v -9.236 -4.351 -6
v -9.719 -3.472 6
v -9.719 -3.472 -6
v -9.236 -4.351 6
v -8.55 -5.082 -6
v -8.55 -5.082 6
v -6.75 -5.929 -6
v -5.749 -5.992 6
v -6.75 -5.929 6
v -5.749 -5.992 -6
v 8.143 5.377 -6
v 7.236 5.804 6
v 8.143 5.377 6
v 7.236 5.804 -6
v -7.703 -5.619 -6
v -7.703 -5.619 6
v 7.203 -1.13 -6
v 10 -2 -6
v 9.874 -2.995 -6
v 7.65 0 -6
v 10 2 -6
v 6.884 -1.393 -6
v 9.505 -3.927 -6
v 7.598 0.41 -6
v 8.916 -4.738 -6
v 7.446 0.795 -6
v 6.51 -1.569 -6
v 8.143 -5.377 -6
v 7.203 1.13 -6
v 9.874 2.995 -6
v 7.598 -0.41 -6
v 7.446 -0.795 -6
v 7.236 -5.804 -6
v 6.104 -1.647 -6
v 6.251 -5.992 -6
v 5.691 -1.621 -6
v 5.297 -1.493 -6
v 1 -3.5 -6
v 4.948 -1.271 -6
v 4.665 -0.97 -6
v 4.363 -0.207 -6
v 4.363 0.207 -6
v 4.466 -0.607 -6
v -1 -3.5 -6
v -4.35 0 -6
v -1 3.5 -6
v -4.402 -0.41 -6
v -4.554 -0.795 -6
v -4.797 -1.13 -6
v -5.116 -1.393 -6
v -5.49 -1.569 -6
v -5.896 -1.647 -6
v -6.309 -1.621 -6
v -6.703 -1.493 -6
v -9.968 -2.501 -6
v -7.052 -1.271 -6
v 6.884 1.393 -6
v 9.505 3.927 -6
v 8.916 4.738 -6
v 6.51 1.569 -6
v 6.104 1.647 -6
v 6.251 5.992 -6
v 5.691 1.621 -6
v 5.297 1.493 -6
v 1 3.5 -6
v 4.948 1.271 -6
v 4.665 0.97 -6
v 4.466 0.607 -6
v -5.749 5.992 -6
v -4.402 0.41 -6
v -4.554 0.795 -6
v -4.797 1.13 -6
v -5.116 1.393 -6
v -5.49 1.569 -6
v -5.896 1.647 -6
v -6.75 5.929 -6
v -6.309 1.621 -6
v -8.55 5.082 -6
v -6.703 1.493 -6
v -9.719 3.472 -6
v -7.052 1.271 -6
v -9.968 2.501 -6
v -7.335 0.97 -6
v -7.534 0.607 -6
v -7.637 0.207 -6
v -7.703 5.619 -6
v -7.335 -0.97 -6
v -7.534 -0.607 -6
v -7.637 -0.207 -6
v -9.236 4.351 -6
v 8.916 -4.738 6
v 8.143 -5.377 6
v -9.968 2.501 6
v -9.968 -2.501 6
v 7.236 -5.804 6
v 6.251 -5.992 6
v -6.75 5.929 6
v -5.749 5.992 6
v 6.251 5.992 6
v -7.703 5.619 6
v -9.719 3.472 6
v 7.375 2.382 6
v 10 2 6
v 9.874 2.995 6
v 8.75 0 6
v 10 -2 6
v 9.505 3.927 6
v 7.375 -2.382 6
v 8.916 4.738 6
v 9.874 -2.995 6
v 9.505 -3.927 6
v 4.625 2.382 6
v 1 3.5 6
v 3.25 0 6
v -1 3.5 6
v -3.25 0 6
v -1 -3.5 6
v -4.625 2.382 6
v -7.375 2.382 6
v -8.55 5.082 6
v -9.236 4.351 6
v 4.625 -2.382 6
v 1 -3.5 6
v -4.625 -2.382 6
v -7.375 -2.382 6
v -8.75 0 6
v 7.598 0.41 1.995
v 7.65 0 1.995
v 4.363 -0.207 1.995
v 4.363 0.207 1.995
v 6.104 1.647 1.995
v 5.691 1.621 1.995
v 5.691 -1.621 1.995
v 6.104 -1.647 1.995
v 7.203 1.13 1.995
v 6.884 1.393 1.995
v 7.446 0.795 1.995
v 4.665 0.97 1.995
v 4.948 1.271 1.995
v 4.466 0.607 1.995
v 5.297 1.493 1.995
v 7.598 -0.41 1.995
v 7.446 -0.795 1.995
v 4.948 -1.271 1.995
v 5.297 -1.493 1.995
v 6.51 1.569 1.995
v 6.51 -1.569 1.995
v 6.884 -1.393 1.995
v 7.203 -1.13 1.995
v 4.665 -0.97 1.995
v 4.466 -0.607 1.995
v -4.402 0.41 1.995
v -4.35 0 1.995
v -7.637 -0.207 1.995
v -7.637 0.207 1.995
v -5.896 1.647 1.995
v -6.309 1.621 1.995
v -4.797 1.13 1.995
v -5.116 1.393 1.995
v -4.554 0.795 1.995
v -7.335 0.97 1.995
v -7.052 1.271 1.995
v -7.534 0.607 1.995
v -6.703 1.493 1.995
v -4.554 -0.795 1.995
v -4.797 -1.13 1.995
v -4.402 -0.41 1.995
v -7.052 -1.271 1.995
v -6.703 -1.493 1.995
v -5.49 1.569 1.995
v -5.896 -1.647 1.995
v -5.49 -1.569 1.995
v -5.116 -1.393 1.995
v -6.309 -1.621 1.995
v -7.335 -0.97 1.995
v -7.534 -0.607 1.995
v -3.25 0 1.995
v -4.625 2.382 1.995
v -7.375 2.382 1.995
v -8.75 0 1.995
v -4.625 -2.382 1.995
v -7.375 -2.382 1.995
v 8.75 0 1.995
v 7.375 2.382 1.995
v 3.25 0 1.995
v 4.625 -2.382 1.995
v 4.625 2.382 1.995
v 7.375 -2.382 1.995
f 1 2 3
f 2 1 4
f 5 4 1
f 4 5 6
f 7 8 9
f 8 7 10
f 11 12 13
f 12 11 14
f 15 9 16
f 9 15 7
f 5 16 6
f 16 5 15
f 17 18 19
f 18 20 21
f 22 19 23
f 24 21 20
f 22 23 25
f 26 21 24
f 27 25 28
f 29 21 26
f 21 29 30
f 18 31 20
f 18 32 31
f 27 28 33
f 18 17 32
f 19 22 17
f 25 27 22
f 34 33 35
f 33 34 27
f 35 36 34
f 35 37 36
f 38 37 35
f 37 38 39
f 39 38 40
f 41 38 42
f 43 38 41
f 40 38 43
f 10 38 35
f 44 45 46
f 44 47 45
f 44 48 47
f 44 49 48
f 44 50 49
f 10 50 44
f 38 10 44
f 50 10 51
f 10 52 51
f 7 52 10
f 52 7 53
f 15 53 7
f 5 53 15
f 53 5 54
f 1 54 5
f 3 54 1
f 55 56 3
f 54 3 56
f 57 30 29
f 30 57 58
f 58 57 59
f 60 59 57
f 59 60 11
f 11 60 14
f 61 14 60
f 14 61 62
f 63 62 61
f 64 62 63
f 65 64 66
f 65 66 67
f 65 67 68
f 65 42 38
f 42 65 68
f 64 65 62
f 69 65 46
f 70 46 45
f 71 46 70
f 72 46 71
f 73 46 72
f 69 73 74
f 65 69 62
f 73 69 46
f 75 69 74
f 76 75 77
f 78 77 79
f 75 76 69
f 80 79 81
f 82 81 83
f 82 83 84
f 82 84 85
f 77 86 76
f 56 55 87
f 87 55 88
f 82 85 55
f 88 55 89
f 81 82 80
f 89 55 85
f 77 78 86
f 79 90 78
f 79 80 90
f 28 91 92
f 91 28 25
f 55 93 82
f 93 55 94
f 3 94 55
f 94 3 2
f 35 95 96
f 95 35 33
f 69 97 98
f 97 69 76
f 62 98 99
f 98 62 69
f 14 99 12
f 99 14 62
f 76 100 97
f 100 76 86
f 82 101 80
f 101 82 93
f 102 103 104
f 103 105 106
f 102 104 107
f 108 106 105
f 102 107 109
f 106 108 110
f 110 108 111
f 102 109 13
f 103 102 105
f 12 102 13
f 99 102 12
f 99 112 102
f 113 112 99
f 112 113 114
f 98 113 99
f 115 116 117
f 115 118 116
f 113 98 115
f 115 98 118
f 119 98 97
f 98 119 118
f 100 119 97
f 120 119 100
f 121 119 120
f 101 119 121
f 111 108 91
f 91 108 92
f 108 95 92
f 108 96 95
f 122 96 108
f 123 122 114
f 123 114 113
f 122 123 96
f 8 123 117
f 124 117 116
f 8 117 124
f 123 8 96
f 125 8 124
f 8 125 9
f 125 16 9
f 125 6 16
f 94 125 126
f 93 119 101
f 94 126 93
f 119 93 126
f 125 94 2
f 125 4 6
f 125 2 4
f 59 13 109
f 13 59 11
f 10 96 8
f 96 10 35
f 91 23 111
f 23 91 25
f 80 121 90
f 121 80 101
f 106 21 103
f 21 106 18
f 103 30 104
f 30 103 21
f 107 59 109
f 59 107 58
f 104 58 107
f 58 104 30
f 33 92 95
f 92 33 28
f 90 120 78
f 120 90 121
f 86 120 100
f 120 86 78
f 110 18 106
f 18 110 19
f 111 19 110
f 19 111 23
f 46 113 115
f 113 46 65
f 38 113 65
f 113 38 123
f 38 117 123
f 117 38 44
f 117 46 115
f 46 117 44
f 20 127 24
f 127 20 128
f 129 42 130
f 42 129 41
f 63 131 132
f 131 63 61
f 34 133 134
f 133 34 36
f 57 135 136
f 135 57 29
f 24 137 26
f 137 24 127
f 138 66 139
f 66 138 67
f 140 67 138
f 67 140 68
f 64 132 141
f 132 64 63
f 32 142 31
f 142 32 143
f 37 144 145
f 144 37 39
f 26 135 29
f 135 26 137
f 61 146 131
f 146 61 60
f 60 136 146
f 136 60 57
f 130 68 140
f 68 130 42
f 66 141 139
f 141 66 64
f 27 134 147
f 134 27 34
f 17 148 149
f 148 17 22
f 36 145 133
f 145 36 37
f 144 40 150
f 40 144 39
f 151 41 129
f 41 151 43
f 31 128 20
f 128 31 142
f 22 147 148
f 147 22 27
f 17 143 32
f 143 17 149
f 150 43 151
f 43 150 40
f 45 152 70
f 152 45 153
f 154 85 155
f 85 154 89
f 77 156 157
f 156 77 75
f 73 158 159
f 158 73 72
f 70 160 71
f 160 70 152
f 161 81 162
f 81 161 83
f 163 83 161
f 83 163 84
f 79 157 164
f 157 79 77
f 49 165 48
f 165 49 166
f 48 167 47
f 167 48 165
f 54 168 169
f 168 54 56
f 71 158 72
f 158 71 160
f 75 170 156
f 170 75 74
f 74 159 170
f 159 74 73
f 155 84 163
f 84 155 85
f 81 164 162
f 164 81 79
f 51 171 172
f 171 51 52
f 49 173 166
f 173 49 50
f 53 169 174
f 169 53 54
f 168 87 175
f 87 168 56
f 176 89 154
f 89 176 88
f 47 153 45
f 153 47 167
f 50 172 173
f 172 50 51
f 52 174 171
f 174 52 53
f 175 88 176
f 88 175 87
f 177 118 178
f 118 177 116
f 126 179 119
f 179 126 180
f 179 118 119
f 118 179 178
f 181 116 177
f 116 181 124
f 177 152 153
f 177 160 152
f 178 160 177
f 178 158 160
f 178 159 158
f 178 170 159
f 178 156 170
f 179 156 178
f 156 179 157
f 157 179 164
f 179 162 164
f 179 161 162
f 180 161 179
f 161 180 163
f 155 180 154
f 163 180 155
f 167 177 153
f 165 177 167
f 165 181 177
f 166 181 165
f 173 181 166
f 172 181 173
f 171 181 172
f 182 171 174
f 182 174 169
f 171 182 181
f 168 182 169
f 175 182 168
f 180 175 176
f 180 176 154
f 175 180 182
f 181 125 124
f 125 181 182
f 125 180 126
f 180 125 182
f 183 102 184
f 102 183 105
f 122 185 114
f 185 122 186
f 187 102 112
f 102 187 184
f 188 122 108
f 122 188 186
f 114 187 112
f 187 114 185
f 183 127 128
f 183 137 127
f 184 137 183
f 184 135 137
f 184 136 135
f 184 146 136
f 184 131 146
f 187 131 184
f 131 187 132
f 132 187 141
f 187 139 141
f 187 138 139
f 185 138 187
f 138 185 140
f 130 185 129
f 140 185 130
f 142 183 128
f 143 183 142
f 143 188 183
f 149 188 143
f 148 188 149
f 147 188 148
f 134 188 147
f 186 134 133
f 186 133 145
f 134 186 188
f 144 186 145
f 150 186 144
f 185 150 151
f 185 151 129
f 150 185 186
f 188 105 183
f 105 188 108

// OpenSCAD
// file: roundedRect.scad
module roundedCube(size, radius, center=false) {
	x = size[0];
	y = size[1];
	z = size[2];

	xtrans=(center==true)?-x/2:0;
	ytrans=(center==true)?-y/2:0;
	ztrans=(center==true)?-z/2:0;


	translate([xtrans, ytrans, ztrans])
	hull() {
		translate([radius, radius, radius])
			sphere(r=radius, center=center);

		translate([radius, radius, z-radius])
			sphere(r=radius, center=center);


		translate([x - radius, radius, radius])
			sphere(r=radius, center=center);
		translate([x - radius, radius, z-radius])
			sphere(r=radius, center=center);

		translate([x - radius, y - radius, radius])
			sphere(r=radius, center=center);
		translate([x - radius, y - radius, z-radius])
			sphere(r=radius, center=center);

		translate([radius, y - radius, radius])
			sphere(r=radius, center=center);
		translate([radius, y - radius, z-radius])
			sphere(r=radius, center=center);
	}
}

module roundedRect(size, radius, center=false) {
	x = size[0];
	y = size[1];
	z = size[2];

	xtrans=(center==true)?-x/2:0;
	ytrans=(center==true)?-y/2:0;
	ztrans=(center==true)?-z/2:0;


	translate([xtrans, ytrans, ztrans])
	linear_extrude(height=z)

	hull() {
		translate([radius, radius, 0])
			circle(r=radius, center=center);

		translate([x - radius, radius, 0])
			circle(r=radius, center=center);

		translate([x - radius, y - radius, 0])
			circle(r=radius, center=center);

		translate([radius, y - radius, 0])
			circle(r=radius, center=center);
	}
}

//$fn=50;
//roundedCube([10,10,10], 1, center=false);

//translate([-10, -10, 0]) roundedRect([10,10,10], 1, center=false);
// main file
use <roundedRect.scad>
tensionboltspread=12;
slotwidth=7;
slotheight=2;
$fn=25;

module nuttrap(d,h) { 
	#cylinder(d=d, h=h, center=true, $fn=6);
}


difference() {
   	roundedRect([20,12,12], 4, center=true);
	#rotate([90,0,90]) cube([slotwidth,12.5,slotheight], center=true);
	translate([tensionboltspread/2,0,0]) cylinder(d=3.3, h=100, center=true);
	translate([-tensionboltspread/2,0,0]) cylinder(d=3.3, h=100, center=true);

translate([-tensionboltspread/2,0,12/2-2]) nuttrap(d=5.5, h=4.01);

translate([tensionboltspread/2,0,12/2-2]) nuttrap(d=5.5, h=4.01);

}
